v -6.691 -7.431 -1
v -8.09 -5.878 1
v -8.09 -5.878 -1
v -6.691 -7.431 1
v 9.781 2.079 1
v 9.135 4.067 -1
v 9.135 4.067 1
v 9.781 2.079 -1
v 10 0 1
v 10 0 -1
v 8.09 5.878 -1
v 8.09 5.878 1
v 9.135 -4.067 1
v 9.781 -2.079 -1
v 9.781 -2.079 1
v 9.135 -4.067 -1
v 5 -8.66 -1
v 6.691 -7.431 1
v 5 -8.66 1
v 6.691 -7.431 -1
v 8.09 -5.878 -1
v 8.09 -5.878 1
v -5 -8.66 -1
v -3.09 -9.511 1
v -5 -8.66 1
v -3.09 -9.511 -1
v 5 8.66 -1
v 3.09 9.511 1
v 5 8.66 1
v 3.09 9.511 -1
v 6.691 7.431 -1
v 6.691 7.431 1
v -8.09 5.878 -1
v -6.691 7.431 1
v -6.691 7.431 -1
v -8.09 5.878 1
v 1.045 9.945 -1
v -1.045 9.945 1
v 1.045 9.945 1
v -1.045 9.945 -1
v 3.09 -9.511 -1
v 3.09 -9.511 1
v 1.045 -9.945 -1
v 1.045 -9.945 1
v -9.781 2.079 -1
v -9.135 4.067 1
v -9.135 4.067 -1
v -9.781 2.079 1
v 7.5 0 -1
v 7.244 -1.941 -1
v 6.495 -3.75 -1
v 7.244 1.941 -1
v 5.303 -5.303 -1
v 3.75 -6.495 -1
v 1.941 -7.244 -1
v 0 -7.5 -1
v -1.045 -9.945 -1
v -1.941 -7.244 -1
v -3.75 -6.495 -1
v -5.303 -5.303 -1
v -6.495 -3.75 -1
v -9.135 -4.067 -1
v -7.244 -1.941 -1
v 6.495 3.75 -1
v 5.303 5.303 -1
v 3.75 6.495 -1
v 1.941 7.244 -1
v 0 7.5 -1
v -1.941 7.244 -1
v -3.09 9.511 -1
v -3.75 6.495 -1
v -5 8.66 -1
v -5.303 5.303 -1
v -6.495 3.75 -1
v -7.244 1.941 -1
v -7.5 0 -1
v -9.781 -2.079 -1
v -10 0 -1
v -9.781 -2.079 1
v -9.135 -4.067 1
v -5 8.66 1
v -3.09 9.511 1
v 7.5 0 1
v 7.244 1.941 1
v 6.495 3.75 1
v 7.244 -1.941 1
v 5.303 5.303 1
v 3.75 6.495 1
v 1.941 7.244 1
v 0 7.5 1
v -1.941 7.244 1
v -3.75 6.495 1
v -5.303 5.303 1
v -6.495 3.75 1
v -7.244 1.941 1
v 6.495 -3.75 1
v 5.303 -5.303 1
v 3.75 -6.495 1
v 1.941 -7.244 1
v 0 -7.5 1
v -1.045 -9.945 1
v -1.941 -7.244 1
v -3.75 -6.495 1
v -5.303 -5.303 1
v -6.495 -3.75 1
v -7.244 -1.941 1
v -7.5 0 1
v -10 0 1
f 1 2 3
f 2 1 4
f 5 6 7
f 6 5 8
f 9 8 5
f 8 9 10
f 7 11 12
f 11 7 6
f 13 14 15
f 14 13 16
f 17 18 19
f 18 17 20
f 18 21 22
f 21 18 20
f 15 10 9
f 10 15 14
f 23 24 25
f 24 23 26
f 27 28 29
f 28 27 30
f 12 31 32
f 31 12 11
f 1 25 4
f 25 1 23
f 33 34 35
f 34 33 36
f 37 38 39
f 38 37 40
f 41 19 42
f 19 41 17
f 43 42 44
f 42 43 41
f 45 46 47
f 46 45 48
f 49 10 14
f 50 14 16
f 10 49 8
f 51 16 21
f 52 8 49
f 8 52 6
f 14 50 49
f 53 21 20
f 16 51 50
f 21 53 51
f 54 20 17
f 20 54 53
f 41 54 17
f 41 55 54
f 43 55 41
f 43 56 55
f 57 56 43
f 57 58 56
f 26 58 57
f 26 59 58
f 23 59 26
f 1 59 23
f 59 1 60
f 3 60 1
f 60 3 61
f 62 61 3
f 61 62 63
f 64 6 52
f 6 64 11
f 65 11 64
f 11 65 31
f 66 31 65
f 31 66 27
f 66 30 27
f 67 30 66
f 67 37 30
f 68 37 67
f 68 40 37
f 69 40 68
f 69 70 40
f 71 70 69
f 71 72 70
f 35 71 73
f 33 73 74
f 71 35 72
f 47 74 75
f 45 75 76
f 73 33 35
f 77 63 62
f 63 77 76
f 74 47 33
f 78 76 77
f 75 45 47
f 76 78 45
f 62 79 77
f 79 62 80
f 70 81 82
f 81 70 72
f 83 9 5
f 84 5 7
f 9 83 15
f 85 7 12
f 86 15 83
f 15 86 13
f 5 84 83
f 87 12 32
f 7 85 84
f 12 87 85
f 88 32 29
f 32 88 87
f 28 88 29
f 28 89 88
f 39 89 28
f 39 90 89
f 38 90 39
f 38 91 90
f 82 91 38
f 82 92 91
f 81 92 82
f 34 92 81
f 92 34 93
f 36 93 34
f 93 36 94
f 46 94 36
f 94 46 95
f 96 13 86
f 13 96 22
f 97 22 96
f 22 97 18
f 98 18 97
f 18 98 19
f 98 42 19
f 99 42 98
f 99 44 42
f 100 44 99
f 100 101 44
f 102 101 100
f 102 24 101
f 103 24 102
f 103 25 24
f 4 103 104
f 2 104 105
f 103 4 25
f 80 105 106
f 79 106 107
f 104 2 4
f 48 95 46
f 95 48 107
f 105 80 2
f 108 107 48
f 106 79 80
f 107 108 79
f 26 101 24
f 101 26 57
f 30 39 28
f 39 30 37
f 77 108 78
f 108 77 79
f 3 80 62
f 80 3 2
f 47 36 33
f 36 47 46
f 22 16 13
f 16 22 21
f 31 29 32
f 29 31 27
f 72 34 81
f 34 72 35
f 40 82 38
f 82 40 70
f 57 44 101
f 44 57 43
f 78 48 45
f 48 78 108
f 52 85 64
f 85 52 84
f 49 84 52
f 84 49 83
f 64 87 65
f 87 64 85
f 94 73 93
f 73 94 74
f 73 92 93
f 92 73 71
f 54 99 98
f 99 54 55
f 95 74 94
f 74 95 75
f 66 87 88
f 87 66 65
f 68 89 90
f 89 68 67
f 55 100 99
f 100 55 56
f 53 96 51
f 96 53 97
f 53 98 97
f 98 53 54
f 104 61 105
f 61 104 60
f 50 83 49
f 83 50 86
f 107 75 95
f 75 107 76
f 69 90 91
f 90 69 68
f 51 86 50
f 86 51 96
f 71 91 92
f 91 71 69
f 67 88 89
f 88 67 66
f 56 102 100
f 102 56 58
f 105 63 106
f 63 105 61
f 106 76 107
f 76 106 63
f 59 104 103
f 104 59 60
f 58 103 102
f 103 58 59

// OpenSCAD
// Spacer Ring Parameters
module spacer_ring(outer_diameter=20, inner_diameter=15, thickness=2) {
    difference() {
        // Outer cylinder
        cylinder(h=thickness, r=outer_diameter/2, center=true);
        // Inner cylinder (hole)
        cylinder(h=thickness + 1, r=inner_diameter/2, center=true);
    }
}

// Render the spacer ring
spacer_ring();
